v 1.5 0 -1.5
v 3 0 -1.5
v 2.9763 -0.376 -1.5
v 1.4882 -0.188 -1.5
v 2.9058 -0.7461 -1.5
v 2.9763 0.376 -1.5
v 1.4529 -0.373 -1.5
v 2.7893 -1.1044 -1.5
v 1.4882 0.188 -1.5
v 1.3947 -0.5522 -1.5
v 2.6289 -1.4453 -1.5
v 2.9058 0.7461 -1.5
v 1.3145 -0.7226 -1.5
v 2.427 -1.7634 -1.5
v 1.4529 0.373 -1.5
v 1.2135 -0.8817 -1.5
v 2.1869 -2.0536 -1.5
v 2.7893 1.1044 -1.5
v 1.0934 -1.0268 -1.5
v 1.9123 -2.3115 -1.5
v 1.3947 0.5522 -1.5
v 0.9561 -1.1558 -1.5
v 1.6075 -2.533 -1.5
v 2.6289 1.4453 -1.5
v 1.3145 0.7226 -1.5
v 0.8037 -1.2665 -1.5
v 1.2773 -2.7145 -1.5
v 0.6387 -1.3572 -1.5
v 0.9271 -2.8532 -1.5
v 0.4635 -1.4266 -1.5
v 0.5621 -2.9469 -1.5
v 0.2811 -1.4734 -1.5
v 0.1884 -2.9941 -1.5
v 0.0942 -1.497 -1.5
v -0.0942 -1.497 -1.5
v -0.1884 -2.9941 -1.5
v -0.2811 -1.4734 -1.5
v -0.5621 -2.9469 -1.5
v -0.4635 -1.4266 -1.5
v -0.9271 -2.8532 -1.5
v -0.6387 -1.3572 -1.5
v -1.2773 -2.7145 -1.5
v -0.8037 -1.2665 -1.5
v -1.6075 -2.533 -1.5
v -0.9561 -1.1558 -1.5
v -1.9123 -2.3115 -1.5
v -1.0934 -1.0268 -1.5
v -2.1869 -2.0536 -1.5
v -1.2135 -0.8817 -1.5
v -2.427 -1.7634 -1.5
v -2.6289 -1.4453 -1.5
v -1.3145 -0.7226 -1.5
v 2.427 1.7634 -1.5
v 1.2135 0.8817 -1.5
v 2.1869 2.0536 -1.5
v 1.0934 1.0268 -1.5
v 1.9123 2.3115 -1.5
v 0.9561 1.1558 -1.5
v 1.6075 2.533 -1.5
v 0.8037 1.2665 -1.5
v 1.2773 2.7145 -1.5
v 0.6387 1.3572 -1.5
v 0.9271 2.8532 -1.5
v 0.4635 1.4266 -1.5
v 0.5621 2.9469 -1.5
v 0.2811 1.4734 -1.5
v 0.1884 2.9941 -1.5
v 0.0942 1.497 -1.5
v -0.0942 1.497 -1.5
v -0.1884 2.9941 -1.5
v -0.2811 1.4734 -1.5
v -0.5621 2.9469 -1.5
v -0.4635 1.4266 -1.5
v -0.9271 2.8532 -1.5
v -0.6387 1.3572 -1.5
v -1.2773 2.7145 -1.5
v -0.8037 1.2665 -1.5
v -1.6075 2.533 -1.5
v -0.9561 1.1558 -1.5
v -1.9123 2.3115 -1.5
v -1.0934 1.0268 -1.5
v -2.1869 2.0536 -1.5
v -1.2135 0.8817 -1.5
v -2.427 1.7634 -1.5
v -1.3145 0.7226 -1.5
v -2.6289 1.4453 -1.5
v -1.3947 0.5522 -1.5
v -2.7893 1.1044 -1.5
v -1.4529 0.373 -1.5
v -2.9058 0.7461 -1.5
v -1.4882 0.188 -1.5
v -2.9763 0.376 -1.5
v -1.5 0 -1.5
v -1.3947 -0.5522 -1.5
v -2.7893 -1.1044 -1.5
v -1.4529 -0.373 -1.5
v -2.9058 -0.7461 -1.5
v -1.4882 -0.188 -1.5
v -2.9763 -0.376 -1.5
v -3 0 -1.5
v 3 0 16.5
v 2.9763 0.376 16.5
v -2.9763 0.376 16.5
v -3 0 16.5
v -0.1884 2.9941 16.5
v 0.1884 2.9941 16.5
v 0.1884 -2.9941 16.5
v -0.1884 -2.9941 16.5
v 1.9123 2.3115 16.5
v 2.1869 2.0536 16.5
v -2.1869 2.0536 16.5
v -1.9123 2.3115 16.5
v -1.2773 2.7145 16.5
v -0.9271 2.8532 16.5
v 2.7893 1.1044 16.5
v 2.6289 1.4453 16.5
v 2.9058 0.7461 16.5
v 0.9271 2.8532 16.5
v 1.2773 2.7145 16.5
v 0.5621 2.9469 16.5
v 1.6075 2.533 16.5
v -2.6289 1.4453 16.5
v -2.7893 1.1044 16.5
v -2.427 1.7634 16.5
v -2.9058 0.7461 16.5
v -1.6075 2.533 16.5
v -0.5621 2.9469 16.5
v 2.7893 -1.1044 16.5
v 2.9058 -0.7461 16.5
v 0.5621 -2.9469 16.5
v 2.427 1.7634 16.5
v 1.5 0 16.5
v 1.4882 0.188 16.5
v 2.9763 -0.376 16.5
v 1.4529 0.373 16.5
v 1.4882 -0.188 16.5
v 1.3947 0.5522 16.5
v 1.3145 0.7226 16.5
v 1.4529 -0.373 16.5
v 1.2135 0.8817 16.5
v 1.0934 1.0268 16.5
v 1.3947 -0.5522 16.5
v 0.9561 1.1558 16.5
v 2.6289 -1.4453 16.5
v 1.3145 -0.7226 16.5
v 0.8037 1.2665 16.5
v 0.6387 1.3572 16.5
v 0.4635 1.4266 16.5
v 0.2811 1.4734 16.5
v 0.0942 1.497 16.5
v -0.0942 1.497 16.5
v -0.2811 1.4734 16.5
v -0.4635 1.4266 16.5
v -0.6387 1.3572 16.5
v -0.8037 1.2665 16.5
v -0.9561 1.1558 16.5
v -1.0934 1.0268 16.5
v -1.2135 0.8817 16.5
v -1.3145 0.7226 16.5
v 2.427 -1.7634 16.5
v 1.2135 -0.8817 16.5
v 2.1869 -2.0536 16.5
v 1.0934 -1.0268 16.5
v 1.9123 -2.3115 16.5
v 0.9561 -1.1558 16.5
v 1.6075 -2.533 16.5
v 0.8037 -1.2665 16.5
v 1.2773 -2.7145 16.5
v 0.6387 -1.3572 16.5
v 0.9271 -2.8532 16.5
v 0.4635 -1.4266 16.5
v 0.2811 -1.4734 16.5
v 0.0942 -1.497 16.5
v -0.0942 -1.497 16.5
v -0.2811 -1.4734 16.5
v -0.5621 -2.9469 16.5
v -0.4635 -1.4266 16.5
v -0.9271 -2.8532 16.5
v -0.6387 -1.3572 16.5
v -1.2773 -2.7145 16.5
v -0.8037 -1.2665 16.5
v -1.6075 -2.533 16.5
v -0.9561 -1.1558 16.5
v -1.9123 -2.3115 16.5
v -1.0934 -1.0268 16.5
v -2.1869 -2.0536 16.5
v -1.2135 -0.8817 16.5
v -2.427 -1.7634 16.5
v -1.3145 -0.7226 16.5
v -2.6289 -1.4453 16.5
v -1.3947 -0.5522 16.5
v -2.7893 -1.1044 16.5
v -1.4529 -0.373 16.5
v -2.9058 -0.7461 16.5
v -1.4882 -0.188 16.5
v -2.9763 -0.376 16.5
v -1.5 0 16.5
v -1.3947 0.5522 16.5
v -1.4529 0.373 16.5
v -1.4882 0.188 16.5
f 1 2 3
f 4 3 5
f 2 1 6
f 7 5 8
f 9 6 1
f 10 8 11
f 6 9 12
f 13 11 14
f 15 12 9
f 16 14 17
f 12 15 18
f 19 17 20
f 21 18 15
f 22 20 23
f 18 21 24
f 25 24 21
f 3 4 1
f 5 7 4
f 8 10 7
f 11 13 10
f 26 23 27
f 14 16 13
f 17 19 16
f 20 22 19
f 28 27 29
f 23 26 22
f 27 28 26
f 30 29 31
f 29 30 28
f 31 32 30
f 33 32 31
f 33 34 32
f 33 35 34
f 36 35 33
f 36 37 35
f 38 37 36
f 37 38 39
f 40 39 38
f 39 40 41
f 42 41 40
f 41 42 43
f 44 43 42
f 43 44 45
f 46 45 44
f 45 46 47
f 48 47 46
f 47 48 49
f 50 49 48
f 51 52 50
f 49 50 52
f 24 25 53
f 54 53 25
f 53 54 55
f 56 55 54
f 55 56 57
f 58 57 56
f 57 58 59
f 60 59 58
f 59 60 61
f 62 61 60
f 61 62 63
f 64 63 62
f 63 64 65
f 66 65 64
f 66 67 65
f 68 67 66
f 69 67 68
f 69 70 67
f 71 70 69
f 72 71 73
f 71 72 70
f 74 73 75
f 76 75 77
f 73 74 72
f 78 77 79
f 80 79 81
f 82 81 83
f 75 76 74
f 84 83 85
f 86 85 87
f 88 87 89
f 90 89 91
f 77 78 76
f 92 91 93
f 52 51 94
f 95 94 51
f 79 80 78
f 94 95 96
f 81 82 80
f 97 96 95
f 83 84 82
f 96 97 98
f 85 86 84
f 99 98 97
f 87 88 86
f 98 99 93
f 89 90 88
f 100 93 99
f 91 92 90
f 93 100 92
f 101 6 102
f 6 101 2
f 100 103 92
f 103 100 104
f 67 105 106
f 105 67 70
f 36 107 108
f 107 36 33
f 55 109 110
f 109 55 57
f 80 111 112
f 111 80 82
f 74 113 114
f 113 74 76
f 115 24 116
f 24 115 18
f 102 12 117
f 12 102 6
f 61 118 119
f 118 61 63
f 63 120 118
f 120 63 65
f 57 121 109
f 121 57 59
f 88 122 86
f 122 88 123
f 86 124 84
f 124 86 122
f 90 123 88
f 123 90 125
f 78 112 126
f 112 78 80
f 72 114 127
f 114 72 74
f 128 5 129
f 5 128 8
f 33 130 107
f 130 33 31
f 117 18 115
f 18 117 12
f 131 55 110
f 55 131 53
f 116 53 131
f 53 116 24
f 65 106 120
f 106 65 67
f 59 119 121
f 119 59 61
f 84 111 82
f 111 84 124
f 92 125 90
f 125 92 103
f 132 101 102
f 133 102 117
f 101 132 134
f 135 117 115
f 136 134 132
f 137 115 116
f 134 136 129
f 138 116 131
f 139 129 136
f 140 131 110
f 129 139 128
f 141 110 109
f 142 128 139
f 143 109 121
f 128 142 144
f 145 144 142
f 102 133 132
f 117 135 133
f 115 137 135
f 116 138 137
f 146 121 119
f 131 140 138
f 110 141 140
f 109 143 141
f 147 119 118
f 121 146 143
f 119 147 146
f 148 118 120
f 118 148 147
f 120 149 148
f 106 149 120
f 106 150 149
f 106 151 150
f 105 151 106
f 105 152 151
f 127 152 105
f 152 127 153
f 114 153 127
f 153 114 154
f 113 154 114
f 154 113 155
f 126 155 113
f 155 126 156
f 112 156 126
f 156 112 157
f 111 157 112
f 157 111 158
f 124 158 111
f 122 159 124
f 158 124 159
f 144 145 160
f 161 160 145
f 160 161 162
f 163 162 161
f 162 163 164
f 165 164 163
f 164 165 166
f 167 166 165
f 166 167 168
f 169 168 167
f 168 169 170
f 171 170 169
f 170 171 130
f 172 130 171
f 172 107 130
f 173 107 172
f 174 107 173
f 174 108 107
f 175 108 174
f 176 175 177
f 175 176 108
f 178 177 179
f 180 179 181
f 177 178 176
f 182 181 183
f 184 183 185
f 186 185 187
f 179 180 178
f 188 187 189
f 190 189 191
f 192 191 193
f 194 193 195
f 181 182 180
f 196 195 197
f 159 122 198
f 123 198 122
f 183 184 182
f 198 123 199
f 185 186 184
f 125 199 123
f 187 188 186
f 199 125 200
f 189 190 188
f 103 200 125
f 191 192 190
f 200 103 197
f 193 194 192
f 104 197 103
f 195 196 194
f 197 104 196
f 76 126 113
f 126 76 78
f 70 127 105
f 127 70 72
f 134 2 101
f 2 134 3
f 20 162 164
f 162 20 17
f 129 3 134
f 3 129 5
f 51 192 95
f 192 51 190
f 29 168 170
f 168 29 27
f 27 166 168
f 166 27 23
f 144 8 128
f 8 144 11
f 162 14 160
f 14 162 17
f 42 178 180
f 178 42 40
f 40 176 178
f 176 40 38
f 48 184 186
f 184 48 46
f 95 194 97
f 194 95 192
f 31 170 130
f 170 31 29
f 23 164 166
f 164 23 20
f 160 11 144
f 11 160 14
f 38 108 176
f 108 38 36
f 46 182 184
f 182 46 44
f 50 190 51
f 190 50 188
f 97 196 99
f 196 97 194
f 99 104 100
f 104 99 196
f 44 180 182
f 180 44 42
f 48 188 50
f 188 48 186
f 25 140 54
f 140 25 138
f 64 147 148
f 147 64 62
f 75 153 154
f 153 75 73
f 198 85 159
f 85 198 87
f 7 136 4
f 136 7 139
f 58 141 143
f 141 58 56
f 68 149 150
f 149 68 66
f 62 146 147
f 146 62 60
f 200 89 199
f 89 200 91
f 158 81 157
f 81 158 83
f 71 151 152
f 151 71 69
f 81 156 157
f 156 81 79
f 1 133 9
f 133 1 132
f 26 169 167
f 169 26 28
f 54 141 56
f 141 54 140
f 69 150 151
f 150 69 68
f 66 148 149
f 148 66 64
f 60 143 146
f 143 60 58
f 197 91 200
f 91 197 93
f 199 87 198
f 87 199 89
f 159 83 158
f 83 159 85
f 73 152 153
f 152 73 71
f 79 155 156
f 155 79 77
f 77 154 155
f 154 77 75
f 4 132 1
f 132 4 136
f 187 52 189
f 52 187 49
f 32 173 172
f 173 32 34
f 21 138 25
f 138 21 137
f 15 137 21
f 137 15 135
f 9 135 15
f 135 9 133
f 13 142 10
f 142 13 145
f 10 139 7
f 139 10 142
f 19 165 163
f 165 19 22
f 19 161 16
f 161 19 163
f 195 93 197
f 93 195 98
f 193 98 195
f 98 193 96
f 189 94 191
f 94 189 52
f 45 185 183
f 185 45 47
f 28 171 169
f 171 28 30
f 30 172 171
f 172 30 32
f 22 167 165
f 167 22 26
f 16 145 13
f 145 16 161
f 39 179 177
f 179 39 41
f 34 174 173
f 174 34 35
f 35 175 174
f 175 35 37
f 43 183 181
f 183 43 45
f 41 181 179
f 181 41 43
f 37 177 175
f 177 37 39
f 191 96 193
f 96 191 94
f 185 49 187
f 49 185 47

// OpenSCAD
$fn = 50;


difference() {
	union() {
		translate(v = [0, 0, -1.5000000000]) {
			rotate(a = [0, 0, 0]) {
				cylinder(h = 3, r = 1.0000000000);
			}
		}
		translate(v = [0, 0, -1.5000000000]) {
			rotate(a = [0, 0, 0]) {
				cylinder(h = 18, r = 3.0000000000);
			}
		}
	}
	union() {
		translate(v = [0, 0, -125.0000000000]) {
			rotate(a = [0, 0, 0]) {
				cylinder(h = 250, r = 1.5000000000);
			}
		}
	}
}
